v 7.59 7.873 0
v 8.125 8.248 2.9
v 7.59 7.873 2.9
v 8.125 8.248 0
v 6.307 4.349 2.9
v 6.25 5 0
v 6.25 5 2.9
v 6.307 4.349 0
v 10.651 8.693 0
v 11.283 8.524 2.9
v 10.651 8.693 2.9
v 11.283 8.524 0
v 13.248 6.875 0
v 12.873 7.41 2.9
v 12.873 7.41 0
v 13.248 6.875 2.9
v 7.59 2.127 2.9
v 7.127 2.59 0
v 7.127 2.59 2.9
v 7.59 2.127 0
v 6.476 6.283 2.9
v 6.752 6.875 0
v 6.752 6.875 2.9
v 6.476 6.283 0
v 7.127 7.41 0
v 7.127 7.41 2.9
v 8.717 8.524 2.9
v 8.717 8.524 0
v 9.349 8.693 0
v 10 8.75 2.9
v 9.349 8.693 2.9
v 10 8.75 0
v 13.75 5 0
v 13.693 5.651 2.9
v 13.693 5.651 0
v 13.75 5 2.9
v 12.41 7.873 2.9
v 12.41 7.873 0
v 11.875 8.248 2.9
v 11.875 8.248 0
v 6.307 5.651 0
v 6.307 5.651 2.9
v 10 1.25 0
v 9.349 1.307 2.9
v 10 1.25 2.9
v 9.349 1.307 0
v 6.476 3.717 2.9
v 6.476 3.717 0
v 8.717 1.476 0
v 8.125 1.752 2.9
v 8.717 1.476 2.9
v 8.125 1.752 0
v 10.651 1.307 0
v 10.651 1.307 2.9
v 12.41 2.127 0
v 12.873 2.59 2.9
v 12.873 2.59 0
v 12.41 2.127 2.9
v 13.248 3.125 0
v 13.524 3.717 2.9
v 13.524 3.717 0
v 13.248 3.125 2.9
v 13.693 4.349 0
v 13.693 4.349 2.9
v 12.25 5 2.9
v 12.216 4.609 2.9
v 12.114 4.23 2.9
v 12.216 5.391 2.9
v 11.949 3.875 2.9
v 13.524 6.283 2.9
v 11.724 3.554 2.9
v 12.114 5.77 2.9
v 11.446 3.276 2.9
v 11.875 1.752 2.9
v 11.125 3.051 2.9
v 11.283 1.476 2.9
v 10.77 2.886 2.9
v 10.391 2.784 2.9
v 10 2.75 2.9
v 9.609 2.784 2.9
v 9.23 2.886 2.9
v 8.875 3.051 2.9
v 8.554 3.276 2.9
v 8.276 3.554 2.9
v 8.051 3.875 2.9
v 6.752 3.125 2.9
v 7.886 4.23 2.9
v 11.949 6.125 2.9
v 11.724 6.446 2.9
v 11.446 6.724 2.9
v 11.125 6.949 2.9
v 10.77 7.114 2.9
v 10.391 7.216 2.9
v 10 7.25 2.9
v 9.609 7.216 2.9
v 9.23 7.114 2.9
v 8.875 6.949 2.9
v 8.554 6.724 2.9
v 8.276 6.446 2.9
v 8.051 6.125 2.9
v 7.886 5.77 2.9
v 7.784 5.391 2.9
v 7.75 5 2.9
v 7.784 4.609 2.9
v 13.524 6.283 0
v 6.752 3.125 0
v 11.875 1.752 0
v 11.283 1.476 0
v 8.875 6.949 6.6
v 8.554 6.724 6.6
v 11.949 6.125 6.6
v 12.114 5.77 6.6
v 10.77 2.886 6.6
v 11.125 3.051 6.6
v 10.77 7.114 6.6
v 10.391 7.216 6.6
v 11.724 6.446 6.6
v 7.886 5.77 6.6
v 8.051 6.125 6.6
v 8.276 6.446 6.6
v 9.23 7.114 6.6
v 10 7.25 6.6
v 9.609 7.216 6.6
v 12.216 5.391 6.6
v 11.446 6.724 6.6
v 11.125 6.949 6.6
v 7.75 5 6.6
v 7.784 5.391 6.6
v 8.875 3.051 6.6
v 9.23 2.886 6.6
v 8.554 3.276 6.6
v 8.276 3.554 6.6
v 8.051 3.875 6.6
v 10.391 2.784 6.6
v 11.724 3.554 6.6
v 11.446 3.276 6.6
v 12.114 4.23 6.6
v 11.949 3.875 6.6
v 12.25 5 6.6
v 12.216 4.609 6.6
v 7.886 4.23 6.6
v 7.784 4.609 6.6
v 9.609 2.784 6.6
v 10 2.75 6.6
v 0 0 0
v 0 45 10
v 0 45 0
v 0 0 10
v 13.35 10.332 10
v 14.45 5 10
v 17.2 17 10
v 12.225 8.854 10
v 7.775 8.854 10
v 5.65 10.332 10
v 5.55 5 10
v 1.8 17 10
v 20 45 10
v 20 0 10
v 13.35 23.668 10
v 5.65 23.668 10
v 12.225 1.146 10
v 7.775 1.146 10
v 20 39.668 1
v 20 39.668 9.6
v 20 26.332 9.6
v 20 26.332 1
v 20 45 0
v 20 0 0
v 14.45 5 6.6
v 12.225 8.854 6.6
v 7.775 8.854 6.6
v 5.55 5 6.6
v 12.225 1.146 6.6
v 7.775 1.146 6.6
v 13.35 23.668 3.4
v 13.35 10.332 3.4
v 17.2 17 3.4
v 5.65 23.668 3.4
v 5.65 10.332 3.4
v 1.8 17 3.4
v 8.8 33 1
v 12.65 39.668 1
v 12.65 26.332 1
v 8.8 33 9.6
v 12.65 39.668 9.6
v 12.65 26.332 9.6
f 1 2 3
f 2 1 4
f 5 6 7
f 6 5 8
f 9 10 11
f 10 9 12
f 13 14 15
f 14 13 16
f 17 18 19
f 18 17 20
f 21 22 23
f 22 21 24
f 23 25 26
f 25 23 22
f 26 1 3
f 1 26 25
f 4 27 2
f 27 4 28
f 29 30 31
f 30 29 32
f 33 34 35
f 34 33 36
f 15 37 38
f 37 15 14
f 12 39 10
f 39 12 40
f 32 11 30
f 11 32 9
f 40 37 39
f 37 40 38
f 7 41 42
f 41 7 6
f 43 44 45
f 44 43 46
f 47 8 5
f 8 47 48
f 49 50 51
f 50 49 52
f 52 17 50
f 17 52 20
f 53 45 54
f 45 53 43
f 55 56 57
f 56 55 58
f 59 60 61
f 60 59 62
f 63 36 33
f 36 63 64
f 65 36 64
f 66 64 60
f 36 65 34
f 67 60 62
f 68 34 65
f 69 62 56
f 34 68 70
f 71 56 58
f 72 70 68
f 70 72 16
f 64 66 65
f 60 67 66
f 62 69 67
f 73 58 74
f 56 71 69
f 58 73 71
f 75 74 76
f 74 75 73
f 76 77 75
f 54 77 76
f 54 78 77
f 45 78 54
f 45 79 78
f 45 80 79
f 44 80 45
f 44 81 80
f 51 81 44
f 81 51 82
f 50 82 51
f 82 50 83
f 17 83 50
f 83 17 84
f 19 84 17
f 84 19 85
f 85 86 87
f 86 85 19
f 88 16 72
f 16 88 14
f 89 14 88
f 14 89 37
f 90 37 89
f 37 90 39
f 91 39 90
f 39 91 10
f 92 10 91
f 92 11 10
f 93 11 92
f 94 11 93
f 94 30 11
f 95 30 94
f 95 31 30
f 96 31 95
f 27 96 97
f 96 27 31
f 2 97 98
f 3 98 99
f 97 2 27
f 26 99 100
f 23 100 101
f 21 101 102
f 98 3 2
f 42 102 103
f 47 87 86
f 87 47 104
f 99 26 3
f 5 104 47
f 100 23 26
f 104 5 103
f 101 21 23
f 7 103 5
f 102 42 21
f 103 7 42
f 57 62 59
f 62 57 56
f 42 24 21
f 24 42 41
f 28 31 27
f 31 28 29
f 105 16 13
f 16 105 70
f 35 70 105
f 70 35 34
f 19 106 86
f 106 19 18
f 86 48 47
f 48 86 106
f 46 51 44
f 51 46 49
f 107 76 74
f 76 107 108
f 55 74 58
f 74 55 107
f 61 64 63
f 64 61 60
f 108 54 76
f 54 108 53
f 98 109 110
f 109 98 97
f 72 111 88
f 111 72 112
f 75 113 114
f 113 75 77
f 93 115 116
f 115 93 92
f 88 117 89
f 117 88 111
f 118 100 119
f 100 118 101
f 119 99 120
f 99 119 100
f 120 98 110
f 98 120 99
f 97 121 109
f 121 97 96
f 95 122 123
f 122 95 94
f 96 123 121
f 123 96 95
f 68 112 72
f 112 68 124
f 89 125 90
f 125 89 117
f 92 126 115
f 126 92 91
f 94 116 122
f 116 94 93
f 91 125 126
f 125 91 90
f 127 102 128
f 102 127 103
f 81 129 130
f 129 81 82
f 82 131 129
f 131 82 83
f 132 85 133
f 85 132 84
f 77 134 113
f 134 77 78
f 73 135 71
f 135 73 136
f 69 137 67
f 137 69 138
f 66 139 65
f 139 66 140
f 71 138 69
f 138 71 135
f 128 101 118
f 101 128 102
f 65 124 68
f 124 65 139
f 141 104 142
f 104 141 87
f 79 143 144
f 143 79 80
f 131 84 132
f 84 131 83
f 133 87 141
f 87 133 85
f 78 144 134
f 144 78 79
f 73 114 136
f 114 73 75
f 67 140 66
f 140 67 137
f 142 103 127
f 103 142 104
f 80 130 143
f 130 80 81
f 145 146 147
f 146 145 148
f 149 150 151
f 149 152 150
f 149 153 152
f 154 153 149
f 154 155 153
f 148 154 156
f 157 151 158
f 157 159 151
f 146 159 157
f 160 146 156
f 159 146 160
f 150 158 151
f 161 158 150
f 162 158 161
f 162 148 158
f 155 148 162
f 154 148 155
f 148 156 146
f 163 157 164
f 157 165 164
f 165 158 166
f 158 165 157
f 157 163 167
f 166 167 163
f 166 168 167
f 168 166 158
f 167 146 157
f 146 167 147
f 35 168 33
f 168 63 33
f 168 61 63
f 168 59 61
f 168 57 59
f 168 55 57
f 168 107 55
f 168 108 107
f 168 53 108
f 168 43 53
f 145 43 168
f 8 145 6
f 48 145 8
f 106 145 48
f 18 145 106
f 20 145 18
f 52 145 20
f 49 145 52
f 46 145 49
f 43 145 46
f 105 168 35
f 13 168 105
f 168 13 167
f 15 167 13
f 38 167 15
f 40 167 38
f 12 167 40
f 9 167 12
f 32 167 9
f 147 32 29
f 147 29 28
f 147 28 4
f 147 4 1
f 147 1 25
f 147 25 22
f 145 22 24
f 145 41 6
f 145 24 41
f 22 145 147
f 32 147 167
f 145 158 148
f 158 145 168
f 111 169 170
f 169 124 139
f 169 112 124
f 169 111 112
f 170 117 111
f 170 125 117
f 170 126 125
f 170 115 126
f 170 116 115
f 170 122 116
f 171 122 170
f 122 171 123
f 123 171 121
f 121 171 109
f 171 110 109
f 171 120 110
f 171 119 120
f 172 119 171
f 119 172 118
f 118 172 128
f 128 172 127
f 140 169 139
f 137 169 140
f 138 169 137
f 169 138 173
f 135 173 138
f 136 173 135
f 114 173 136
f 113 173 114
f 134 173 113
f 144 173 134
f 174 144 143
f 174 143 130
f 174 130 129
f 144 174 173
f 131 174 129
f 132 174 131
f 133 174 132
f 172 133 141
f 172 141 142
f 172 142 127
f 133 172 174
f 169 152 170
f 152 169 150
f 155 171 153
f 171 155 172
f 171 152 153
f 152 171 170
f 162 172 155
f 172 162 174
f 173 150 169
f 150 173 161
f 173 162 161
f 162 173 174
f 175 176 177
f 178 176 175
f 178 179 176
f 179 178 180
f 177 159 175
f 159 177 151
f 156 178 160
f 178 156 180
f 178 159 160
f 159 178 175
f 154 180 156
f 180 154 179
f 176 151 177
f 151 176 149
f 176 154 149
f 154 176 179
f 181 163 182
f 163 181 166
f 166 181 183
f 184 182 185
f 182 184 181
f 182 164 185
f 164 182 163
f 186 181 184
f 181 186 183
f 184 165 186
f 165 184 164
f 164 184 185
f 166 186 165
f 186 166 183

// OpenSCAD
// file: m8nut_neg.scad
module m8_nut() {
    add = 2.4;
    width = 13;
    height = 6.2;
    
    radius = (width + add) / 2;
    
    cylinder(height + add, radius, radius, $fn = 6);
    
}



m8_nut();
// file: m4nut_neg.scad
module m4_nut() {
    add = 1.9;
    width = 7;
    height = 3;
    
    radius = (width + add) / 2;
    
    cylinder(height + add, radius, radius, $fn = 6);
    
}


module m4_screw_round(length) {

    add = 0.5;
    headWidth = 7;
    headHeight = 2.5;

    bodyRadius = (4 + add) / 2;

    headRadius = (headWidth + add) / 2;

    union() {
        cylinder(headHeight + add, headRadius, headRadius, $fn = 36);
        
        translate([0,0,length * -1 + headHeight + 0.01]) {
            cylinder(length, bodyRadius, bodyRadius, $fn = 36);
        }
    }
    
    
}



m4_screw_round(20);

m4_nut();
// main file
use <./m4nut_neg.scad>
use <./m8nut_neg.scad>

difference() {
    cube([20, 45, 10]);
    translate([10, 5, 6.6]) {
        m4_nut();
    }
    translate([10, 5, 2.9]) {
        rotate([0, 180, 0]) {
            m4_screw_round(20);
        }
    }
    translate([9.5, 17, 3.4]) {
        m8_nut();
    }
    
        translate([16.5, 33, 1.0]) {
        m8_nut();
    }
}
